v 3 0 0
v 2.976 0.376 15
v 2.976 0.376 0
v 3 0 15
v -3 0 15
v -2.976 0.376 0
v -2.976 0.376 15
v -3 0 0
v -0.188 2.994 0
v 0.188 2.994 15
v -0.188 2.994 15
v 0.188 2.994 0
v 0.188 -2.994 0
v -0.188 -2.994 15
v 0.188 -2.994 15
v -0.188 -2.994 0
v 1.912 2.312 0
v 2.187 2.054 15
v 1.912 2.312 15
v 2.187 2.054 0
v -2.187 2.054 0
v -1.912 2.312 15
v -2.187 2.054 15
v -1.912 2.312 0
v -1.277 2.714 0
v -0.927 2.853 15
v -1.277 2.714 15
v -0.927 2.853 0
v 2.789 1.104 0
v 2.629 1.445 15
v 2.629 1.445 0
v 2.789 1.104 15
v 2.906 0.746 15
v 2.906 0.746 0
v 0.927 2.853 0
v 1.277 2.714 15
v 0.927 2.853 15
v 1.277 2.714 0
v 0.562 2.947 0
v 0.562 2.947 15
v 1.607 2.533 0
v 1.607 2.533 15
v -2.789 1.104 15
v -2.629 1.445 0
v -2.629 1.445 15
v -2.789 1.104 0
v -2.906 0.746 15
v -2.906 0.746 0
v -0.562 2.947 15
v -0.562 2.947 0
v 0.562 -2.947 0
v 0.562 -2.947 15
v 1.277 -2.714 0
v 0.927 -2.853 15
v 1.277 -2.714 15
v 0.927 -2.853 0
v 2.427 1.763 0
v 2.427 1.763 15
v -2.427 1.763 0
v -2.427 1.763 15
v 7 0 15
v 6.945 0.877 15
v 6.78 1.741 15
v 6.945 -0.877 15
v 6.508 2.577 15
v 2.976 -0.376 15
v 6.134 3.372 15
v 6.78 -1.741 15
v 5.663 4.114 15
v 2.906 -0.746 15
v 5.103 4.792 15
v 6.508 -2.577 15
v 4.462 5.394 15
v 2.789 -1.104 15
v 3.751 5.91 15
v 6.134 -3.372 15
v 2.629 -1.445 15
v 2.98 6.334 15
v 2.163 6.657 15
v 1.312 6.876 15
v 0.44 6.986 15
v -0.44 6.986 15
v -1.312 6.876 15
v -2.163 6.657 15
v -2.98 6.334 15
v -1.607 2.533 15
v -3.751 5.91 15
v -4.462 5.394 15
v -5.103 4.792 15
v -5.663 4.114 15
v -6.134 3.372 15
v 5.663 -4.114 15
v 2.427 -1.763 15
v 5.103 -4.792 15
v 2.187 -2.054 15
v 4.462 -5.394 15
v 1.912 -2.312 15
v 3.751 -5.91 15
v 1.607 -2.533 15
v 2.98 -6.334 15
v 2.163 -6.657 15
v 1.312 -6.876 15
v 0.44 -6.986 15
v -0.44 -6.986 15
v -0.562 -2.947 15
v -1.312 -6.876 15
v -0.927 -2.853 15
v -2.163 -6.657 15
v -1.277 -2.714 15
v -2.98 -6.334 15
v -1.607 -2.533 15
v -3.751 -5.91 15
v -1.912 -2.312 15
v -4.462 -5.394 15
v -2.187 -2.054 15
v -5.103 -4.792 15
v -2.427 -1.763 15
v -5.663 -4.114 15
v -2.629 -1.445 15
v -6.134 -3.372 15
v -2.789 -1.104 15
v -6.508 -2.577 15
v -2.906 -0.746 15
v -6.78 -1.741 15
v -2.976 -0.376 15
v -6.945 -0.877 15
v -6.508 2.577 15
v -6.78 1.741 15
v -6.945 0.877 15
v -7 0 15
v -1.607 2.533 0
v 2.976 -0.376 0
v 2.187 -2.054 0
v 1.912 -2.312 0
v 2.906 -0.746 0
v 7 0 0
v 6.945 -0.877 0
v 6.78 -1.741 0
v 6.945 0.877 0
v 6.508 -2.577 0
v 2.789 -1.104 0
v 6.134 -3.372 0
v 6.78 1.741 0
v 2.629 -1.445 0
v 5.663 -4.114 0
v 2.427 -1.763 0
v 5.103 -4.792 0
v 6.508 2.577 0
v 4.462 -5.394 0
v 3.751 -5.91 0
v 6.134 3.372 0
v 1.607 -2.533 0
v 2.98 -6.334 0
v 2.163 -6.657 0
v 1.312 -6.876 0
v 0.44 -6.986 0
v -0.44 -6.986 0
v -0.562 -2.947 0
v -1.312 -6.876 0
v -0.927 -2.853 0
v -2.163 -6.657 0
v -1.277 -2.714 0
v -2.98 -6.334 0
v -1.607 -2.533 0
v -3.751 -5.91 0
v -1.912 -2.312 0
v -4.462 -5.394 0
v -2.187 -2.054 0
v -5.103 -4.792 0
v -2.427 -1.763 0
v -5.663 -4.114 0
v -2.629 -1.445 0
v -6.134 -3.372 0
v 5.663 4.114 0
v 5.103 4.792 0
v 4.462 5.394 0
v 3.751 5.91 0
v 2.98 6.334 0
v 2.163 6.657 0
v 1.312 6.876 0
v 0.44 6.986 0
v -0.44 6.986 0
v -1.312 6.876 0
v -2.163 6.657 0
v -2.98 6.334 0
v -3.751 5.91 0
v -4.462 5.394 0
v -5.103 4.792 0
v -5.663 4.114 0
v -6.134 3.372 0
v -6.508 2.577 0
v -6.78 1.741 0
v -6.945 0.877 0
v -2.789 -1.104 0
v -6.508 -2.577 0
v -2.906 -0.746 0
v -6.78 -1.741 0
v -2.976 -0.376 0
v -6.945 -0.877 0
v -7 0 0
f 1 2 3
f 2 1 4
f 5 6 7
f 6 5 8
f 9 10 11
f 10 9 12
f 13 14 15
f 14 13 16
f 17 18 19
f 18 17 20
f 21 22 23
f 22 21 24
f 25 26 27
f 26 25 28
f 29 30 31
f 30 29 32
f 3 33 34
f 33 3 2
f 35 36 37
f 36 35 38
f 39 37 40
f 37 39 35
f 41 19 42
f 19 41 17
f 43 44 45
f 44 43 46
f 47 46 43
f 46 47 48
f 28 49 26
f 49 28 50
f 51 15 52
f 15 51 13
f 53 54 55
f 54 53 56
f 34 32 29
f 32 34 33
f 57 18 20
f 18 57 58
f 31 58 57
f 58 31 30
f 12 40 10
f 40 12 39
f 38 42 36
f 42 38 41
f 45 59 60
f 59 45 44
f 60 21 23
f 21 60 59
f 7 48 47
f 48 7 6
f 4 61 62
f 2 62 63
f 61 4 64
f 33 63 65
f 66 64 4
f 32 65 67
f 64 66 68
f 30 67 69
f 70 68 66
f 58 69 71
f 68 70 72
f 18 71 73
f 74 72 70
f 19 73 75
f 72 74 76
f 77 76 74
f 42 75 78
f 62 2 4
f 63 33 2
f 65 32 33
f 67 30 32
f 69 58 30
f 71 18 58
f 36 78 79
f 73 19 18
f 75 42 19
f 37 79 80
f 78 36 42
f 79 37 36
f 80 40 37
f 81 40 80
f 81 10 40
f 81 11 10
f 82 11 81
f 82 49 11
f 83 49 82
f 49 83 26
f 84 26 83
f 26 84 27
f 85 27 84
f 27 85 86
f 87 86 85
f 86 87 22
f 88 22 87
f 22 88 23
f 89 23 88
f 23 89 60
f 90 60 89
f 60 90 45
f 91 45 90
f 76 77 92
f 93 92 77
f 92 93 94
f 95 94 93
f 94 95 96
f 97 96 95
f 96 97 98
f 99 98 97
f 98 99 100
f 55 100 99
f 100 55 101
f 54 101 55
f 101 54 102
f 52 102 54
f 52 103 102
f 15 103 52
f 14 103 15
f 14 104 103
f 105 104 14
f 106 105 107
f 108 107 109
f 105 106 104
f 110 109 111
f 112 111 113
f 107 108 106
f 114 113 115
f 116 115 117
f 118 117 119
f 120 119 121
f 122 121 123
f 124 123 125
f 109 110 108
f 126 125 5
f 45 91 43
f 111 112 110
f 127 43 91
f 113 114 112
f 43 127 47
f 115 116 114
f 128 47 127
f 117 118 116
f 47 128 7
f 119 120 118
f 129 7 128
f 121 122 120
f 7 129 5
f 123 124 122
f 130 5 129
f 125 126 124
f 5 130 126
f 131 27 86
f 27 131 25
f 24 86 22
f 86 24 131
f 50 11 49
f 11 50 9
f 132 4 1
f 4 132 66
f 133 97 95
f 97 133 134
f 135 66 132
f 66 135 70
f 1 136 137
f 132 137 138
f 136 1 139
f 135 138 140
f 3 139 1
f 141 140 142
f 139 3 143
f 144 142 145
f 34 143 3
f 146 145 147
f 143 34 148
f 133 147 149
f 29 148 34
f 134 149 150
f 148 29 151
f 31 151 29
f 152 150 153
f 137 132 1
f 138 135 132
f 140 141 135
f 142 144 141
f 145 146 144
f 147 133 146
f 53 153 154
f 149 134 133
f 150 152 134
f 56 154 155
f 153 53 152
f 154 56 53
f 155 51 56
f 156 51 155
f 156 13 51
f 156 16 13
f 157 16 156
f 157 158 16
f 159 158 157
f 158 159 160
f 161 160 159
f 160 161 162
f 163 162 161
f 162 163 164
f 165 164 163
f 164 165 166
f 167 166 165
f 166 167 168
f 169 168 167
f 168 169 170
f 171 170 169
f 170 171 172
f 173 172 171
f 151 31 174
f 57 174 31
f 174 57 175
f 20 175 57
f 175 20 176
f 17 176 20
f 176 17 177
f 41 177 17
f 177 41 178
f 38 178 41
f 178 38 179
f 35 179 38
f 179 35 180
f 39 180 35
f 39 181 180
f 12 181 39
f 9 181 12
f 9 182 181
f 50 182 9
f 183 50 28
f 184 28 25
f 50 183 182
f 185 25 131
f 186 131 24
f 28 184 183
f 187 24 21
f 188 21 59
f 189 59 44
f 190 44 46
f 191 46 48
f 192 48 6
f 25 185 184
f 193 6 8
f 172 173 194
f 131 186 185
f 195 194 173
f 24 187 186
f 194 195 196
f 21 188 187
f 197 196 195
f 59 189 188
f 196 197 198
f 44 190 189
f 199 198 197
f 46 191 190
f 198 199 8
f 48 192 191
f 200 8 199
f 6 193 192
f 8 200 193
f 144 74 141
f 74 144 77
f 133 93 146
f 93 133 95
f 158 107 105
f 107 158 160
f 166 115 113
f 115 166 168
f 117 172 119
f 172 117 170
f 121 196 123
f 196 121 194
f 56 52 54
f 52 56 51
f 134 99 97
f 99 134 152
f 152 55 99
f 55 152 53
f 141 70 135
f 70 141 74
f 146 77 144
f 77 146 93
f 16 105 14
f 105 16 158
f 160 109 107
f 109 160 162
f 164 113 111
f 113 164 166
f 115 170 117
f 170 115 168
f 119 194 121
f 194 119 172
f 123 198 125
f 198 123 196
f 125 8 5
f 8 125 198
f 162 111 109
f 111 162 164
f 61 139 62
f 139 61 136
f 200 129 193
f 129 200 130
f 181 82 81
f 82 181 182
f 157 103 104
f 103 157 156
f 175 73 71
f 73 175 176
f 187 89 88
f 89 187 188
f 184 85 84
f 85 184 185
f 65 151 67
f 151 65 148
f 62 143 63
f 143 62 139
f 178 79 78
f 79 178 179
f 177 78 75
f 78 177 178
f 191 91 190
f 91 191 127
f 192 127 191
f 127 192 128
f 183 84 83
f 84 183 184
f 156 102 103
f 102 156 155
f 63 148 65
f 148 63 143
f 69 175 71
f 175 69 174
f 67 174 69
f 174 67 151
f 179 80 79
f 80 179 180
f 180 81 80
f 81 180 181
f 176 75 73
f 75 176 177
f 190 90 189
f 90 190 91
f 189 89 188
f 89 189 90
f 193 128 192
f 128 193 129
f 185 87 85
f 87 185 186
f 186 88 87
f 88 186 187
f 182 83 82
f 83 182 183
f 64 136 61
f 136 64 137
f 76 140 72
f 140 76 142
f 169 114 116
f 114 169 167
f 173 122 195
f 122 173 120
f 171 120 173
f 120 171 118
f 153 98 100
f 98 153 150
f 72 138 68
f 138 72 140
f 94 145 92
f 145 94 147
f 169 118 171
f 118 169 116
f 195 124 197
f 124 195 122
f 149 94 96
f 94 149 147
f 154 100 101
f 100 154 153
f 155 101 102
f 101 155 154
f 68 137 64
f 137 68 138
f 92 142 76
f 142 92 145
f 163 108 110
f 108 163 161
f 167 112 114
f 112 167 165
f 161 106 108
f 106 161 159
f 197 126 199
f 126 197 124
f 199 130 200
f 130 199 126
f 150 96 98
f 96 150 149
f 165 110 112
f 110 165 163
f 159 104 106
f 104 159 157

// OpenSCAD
$fn = 50;


difference() {
	union() {
		cylinder(h = 15, r = 7.0000000000);
	}
	union() {
		cylinder(h = 15, r = 3.0000000000);
		cylinder(h = 15, r = 1.5000000000);
		cylinder(h = 15, r = 1.5000000000);
		cylinder(h = 15, r = 1.5000000000);
	}
}
